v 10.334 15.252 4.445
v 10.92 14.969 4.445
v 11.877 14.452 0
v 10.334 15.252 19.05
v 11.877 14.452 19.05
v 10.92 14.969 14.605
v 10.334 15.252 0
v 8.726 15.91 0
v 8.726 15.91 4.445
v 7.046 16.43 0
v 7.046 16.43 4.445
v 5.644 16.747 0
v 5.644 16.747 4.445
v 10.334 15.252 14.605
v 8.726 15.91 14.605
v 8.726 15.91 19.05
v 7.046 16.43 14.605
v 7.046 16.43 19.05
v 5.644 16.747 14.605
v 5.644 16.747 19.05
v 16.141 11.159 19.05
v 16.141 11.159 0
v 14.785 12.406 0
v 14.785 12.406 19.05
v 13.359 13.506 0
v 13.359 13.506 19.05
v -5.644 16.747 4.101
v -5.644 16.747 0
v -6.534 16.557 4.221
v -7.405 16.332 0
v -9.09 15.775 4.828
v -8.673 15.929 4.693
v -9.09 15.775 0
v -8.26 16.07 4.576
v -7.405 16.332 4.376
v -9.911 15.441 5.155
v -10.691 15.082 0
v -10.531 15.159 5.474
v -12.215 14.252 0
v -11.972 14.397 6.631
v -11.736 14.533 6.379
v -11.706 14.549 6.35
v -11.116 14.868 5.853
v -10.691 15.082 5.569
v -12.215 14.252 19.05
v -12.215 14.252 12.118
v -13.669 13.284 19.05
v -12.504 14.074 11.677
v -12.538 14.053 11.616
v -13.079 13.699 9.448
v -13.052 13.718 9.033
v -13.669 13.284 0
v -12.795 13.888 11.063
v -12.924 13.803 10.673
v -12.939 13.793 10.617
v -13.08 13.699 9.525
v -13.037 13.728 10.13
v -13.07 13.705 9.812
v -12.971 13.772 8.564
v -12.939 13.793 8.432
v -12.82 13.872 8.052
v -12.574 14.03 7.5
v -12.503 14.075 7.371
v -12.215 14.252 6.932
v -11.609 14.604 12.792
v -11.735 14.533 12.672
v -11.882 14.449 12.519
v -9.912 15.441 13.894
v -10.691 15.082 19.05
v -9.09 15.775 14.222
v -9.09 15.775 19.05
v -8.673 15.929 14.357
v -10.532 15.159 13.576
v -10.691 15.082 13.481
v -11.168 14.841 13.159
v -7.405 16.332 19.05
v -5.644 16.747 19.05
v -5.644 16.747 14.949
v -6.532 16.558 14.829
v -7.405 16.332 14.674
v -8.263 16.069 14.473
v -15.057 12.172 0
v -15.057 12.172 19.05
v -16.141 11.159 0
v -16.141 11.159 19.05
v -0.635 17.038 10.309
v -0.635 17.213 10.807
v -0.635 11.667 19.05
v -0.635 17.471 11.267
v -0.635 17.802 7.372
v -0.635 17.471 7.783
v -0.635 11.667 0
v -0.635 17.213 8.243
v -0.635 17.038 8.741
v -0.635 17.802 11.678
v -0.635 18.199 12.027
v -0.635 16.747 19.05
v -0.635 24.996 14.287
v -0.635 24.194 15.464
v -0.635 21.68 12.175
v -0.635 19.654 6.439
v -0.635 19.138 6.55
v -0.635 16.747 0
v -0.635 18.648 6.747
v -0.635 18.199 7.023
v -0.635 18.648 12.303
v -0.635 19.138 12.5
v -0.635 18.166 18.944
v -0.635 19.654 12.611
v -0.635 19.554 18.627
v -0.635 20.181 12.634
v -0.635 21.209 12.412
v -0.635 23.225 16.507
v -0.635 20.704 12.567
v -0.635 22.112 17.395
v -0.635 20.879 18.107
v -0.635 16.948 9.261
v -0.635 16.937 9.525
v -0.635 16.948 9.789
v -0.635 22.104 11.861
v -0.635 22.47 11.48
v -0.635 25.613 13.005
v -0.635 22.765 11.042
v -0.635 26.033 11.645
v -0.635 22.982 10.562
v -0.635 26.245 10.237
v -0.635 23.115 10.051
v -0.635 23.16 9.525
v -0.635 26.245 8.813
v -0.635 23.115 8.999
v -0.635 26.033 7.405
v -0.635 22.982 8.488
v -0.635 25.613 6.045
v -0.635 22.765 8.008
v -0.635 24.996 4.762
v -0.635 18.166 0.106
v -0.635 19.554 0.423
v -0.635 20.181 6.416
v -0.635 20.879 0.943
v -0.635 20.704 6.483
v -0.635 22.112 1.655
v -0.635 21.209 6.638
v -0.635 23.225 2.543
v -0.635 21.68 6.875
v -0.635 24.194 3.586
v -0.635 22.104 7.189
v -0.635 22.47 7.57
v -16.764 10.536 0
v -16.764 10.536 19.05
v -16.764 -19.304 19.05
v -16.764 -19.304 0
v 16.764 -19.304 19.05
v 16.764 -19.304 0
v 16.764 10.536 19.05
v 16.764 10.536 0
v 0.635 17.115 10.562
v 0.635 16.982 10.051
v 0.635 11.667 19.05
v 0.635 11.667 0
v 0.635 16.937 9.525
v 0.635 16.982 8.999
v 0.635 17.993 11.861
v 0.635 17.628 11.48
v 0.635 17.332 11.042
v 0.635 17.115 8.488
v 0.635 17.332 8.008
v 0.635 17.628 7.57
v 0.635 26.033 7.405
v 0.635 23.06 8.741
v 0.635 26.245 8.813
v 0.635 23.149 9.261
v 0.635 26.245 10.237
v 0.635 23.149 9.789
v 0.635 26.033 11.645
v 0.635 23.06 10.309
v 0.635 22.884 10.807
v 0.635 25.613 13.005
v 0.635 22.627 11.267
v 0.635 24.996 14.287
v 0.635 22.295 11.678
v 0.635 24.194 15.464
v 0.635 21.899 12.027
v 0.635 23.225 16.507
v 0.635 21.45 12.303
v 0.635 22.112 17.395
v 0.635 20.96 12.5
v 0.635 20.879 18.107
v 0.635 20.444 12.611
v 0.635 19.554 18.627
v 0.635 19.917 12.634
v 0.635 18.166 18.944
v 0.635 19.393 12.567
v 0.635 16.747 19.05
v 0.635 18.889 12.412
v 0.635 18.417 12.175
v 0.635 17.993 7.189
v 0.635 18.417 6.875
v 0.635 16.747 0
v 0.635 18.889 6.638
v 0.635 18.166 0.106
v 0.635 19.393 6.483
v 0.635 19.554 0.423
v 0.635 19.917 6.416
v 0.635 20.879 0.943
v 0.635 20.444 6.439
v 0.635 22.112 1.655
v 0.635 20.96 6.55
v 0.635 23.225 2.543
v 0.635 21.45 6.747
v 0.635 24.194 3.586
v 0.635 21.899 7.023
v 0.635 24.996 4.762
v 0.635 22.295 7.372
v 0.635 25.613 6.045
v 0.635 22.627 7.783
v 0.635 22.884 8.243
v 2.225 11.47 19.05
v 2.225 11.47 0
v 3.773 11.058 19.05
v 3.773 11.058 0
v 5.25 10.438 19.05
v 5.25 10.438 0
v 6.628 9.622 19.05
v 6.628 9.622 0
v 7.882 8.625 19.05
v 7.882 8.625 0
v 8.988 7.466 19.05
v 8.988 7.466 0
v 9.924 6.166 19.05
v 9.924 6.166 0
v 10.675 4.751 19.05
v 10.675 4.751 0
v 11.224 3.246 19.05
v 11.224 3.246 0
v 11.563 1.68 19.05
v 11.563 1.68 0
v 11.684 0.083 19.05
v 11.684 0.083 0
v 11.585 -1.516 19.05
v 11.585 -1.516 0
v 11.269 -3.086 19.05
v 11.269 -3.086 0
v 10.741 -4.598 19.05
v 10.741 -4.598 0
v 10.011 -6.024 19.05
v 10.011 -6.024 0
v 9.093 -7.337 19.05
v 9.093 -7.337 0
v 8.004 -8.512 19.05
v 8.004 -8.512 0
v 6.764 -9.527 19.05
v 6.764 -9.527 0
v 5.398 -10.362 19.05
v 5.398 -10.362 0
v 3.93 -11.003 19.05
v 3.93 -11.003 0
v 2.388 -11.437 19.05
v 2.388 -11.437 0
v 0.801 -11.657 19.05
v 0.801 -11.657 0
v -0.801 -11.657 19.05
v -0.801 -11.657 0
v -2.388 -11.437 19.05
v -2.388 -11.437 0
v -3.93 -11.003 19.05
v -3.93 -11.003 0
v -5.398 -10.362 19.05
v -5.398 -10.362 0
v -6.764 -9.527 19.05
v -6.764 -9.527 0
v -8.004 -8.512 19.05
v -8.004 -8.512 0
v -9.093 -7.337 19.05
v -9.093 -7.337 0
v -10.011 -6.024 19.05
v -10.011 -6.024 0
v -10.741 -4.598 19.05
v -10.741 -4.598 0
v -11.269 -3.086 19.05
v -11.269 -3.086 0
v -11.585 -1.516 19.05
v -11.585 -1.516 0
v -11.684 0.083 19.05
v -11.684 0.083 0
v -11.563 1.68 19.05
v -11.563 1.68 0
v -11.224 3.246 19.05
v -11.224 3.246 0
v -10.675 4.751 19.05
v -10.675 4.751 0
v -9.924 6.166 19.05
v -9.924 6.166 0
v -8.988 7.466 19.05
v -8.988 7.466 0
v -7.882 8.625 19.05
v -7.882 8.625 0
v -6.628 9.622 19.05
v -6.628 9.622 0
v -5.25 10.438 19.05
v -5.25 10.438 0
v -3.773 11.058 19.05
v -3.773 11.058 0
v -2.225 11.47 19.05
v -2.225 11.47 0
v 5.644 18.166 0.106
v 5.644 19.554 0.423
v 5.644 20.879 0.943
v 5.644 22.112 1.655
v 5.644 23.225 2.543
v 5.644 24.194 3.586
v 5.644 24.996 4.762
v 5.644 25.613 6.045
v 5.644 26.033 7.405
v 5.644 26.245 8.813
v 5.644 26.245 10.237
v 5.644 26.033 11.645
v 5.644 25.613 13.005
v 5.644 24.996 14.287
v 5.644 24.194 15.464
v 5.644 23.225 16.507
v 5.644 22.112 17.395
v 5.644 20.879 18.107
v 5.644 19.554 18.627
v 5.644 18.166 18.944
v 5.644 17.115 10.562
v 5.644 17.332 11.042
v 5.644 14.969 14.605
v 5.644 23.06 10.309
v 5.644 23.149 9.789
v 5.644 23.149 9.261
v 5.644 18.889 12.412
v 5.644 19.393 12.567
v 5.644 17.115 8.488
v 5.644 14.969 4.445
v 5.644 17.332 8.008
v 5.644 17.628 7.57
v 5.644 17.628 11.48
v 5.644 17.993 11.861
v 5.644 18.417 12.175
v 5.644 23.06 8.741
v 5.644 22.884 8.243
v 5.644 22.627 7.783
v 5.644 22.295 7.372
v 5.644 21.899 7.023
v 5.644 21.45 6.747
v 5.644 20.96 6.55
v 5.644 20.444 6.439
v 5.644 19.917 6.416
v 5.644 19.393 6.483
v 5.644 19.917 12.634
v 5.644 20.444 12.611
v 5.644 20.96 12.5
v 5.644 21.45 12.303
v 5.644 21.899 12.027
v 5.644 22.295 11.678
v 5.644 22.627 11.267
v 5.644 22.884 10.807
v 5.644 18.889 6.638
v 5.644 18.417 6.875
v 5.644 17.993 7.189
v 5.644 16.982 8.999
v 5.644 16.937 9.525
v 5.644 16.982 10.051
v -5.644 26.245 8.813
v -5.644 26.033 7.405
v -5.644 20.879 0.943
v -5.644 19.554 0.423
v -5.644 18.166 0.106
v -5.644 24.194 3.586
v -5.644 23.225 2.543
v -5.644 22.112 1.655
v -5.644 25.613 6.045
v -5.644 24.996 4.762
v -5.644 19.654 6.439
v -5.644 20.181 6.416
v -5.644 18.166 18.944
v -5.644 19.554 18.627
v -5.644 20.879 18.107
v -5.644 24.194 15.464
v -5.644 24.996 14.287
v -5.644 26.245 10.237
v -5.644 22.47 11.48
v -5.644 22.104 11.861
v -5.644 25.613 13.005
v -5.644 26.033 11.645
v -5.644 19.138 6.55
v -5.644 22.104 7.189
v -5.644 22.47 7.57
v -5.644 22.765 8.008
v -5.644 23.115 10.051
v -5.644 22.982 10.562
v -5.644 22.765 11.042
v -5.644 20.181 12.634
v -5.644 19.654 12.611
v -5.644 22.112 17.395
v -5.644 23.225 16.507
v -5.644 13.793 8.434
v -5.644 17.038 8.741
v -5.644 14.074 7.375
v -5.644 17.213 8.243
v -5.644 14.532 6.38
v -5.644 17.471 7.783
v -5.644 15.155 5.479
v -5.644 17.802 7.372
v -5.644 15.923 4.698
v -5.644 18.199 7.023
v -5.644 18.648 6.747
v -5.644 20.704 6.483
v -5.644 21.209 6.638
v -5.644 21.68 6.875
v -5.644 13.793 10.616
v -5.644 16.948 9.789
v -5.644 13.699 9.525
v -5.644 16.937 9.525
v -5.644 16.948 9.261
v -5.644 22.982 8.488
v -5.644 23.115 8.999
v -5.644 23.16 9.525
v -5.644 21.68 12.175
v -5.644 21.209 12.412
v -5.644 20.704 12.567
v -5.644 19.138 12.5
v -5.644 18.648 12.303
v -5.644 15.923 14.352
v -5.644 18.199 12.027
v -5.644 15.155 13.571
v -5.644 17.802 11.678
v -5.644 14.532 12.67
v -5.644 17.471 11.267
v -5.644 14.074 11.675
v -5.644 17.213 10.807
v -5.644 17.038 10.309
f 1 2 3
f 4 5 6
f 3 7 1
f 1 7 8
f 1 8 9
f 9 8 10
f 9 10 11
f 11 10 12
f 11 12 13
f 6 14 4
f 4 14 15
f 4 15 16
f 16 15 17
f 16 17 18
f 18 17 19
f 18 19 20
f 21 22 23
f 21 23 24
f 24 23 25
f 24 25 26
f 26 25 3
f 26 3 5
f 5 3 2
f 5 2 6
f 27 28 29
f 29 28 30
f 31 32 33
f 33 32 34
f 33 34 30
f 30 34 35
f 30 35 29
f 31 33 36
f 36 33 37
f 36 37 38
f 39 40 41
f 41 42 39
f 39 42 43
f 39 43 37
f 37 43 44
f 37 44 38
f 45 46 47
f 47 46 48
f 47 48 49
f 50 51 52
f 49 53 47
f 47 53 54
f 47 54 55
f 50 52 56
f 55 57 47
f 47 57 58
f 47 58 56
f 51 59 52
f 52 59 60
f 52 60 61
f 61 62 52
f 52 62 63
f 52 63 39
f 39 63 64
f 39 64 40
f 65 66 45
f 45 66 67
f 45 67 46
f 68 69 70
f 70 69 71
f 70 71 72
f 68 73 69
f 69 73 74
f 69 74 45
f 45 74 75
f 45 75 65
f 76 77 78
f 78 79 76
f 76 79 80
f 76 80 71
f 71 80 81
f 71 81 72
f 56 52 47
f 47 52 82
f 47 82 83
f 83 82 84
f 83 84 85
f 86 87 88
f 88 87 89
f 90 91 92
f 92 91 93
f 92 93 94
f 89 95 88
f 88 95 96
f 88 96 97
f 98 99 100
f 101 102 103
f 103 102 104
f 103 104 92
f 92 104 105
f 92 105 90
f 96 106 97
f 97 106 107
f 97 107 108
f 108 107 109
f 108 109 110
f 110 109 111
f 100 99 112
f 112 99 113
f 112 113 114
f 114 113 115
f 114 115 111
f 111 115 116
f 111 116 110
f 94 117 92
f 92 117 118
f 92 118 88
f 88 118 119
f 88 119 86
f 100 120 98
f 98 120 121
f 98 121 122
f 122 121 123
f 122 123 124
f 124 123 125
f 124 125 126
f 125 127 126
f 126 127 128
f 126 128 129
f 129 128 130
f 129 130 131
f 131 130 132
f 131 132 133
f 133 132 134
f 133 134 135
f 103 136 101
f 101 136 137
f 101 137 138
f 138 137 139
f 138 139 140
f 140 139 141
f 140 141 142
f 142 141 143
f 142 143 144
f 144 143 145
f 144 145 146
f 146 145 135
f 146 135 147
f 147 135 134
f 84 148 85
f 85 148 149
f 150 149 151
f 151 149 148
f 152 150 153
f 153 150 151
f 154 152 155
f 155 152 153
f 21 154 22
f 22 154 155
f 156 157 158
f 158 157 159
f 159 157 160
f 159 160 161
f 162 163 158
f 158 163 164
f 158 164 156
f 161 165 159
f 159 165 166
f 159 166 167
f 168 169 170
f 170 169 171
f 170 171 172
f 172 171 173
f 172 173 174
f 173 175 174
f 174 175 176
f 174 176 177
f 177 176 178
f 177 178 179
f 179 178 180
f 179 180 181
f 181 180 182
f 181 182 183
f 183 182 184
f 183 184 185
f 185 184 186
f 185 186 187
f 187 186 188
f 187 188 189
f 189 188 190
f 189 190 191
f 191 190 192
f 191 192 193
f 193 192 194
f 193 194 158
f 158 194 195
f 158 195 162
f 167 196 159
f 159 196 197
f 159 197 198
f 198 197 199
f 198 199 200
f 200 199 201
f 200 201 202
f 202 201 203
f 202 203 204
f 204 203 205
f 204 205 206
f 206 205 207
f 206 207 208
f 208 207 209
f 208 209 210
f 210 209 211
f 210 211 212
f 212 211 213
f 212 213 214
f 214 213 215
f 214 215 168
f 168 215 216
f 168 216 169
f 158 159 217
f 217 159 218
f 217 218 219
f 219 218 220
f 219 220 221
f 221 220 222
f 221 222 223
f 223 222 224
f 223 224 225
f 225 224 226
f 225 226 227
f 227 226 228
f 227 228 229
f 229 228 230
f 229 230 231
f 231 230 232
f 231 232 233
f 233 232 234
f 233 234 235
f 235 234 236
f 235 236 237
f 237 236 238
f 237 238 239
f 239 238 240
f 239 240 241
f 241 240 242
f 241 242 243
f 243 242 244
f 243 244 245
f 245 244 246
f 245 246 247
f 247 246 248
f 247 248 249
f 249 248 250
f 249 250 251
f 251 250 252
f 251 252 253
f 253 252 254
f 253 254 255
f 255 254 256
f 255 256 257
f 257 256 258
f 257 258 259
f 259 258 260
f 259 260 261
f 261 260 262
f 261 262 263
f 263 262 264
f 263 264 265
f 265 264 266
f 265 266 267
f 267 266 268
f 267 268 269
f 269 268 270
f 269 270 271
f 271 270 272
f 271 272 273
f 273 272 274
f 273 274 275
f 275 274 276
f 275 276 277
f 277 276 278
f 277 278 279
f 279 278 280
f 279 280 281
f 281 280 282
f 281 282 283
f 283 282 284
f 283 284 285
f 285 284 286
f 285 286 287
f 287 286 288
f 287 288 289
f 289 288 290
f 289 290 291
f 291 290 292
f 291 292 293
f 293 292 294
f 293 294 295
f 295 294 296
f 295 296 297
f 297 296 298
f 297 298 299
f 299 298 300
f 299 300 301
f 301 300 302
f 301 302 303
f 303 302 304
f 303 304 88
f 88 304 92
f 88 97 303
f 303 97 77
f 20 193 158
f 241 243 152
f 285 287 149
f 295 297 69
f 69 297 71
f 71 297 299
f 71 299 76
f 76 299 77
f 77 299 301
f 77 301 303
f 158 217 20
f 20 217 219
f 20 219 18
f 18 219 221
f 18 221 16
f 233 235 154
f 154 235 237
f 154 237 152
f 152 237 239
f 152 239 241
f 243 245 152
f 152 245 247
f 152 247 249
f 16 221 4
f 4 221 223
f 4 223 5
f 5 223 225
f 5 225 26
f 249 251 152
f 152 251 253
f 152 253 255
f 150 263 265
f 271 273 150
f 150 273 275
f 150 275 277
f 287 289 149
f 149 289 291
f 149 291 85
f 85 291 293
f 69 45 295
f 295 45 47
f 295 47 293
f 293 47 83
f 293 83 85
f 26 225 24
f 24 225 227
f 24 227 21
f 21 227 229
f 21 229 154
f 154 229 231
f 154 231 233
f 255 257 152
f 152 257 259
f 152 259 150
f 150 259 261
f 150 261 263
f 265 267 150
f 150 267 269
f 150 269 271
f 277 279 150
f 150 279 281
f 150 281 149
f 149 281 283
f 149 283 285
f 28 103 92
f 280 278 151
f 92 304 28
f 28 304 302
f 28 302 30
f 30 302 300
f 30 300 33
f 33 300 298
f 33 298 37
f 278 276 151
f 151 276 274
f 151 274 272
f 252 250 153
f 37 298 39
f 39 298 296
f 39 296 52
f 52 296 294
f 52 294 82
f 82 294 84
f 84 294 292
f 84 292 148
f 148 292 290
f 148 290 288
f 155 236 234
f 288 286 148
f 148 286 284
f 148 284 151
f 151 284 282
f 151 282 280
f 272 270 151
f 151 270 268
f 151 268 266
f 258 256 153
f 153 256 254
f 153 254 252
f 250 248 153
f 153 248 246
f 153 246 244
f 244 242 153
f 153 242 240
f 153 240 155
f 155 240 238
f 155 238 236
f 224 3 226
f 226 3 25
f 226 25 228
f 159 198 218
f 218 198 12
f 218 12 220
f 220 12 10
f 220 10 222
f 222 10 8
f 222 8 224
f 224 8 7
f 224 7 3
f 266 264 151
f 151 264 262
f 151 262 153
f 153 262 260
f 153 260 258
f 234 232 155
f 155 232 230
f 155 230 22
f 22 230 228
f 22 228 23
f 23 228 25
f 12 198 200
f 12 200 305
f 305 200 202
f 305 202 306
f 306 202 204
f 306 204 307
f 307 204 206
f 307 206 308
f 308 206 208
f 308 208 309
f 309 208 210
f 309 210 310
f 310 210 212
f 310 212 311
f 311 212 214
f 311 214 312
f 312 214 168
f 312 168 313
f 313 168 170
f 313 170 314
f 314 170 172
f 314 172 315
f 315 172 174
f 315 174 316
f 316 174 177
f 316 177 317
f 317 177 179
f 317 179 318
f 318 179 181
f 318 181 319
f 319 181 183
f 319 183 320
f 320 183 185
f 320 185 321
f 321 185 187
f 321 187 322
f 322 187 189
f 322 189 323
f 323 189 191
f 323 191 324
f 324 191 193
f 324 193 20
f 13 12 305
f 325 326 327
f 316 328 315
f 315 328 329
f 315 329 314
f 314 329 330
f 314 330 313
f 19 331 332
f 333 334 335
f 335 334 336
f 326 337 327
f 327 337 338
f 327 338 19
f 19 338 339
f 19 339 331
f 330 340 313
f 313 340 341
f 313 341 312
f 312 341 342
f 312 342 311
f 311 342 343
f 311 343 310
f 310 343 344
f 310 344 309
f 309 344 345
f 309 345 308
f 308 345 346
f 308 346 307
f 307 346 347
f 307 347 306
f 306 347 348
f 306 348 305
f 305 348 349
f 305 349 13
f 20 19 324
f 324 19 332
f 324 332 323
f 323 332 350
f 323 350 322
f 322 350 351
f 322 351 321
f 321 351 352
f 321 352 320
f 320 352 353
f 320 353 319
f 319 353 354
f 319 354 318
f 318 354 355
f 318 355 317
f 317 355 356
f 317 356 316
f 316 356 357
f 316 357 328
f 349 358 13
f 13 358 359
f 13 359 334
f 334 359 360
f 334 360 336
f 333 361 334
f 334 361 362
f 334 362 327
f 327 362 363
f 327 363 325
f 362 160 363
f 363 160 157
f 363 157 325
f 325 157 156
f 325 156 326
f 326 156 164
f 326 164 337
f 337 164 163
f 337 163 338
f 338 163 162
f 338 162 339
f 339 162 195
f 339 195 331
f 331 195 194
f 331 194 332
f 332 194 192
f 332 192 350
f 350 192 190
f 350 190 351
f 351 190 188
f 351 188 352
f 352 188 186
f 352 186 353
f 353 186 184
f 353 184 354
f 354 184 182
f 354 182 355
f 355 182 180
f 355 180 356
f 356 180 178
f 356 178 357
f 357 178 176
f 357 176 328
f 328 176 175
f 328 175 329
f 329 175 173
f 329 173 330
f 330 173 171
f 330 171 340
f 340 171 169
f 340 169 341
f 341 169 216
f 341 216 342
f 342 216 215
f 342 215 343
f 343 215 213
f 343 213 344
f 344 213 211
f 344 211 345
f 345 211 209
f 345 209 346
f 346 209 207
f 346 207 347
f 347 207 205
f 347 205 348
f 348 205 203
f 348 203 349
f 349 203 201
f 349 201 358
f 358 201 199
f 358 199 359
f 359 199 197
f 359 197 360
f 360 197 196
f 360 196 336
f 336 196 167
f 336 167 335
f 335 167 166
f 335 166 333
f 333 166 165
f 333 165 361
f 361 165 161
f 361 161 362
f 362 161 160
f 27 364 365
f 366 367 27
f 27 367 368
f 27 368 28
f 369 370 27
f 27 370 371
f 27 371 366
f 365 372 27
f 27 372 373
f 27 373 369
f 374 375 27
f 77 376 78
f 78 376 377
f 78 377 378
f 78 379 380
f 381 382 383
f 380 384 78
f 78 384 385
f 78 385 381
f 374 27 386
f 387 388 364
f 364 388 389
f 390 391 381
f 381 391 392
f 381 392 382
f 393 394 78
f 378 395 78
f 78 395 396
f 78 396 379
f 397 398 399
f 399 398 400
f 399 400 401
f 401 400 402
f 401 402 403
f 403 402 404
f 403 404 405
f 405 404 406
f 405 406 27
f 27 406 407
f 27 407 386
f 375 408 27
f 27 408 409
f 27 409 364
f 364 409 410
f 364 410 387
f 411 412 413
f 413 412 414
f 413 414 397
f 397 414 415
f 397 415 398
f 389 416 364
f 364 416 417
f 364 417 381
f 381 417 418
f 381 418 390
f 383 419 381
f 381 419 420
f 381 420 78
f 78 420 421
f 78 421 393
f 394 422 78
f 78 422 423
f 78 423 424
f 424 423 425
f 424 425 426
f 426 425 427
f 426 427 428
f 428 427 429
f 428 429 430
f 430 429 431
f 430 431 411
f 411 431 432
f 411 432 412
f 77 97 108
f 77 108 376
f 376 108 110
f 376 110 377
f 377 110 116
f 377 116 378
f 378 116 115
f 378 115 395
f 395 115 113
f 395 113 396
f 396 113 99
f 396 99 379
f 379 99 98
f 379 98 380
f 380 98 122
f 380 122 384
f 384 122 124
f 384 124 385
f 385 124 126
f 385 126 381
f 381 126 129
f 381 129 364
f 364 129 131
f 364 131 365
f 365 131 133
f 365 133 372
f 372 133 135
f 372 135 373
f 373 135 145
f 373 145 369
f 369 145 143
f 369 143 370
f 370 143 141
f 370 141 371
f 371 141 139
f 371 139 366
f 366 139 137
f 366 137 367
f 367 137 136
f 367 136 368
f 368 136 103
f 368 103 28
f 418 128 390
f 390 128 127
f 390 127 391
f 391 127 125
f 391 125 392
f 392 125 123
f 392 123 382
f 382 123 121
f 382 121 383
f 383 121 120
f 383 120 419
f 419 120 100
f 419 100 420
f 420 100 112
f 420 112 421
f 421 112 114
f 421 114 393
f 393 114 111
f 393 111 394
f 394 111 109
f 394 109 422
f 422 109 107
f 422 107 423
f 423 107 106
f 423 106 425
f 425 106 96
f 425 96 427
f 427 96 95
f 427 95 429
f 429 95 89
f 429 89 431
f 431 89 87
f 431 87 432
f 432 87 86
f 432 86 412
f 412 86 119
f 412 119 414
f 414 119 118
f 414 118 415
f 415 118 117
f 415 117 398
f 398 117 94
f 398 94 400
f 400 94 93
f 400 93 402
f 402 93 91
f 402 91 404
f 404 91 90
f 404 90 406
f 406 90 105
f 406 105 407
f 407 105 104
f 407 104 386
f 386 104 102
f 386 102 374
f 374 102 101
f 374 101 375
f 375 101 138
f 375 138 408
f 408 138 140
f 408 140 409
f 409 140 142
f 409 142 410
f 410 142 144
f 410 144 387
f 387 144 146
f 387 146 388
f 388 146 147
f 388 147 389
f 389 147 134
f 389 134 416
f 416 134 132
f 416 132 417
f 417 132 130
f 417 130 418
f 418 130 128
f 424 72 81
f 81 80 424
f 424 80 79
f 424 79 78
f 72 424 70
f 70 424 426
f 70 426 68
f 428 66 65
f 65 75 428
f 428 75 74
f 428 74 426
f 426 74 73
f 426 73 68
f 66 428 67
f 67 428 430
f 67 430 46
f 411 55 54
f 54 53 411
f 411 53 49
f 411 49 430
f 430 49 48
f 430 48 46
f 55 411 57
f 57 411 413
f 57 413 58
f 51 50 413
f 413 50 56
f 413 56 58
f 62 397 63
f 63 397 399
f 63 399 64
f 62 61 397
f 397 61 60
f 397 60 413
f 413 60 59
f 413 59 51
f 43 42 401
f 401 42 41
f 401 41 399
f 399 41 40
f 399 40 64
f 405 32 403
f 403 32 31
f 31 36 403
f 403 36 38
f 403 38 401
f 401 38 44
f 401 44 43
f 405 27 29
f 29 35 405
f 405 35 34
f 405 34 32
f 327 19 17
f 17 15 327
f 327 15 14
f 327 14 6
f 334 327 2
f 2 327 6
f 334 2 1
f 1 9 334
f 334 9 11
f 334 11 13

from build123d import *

# Parameters (mm, degrees)
BOSS_EXTRUDE1_DEPTH = 19.05
SKETCH2_R           = 3.1115
BOSS_EXTRUDE3_DEPTH = 5.00888
CUT_EXTRUDE1_DEPTH  = 37.525855062
SKETCH3_R           = 6.35
CUT_EXTRUDE2_DEPTH  = 40.436271203
SKETCH5_W           = 10.16
SKETCH5_H           = 10.16
CUT_EXTRUDE3_DEPTH  = 40.436271203


with BuildPart() as part:
    # Sketch1 → Boss-Extrude1 (new body)
    with BuildSketch(Plane.XY):
        with BuildLine():
            Line((-16.764, 10.535978608), (-13.649989304, 13.649989304))
            ThreePointArc((-13.649989304, 13.649989304), (-11.72846788, 15.33256199), (-9.60163475, 16.746731805))
            Line((-9.60163475, 16.746731805), (-0.635, 16.746731805))
            Line((-0.635, 16.746731805), (-0.635, 11.666731805))
            ThreePointArc((-0.635, 11.666731805), (0, -11.684), (0.635, 11.666731805))
            Line((0.635, 11.666731805), (0.635, 16.746731805))
            Line((0.635, 16.746731805), (9.60163475, 16.746731805))
            ThreePointArc((9.60163475, 16.746731805), (11.72846788, 15.33256199), (13.649989304, 13.649989304))
            Line((13.649989304, 13.649989304), (16.764, 10.535978608))
            Line((16.764, 10.535978608), (16.764, -19.304))
            Line((16.764, -19.304), (-16.764, -19.304))
            Line((-16.764, -19.304), (-16.764, 10.535978608))
        make_face()
    extrude(amount=BOSS_EXTRUDE1_DEPTH)

    # Sketch2 → Boss-Extrude3 (add)
    with BuildSketch(Plane.ZY.offset(-0.635)):
        with BuildLine():
            Line((19.05, 16.746731805), (0, 16.746731805))
            ThreePointArc((0, 16.746731805), (9.525, 26.271731805), (19.05, 16.746731805))
        make_face()
        with Locations(Location((9.525, 20.048731805, 0), (0, 0, 270))):
            Circle(SKETCH2_R, mode=Mode.SUBTRACT)
    boss_extrude3 = extrude(amount=-BOSS_EXTRUDE3_DEPTH)

    # Mirror7: Boss-Extrude3 across plane
    add(boss_extrude3.mirror(Plane(origin=(0, 0, 0), x_dir=(0, 0, 1), z_dir=(1, 0, 0))))

    # Sketch4 → Cut-Extrude1 (cut, through all)
    with BuildSketch(Plane(origin=(0, 0, 0), x_dir=(-1, 0, 0), z_dir=(0, 0, -1))):
        with BuildLine():
            Line((-16.141246803, 11.158731805), (-16.141246803, 17.710333674))
            Line((-16.141246803, 17.710333674), (-5.64388, 16.746731805))
            add(Edge.make_bspline(
                [(-5.64388, 16.746731805), (-11.711664831, 15.588313777), (-16.141246803, 11.158731805)],
                knots=[0, 0, 0, 1, 1, 1], degree=2))
        make_face()
        with BuildLine():
            Line((16.141246803, 17.710333674), (5.64388, 16.746731805))
            add(Edge.make_bspline(
                [(5.64388, 16.746731805), (11.711664831, 15.588313777), (16.141246803, 11.158731805)],
                knots=[0, 0, 0, 1, 1, 1], degree=2))
            Line((16.141246803, 11.158731805), (16.141246803, 17.710333674))
        make_face()
    extrude(amount=-CUT_EXTRUDE1_DEPTH, mode=Mode.SUBTRACT)

    # Sketch3 → Cut-Extrude2 (cut, through all)
    with BuildSketch(Plane.ZY.offset(5.64388)):
        with Locations((9.525, 20.048731805)):
            Circle(SKETCH3_R)
    extrude(amount=CUT_EXTRUDE2_DEPTH, mode=Mode.SUBTRACT)

    # Sketch5 → Cut-Extrude3 (cut, through all)
    with BuildSketch(Plane(origin=(5.64388, 0, 0), x_dir=(0, 0, -1), z_dir=(1, 0, 0))):
        with Locations((-9.525, 20.048731805)):
            Rectangle(SKETCH5_W, SKETCH5_H)
    extrude(amount=CUT_EXTRUDE3_DEPTH, mode=Mode.SUBTRACT)


solid = part.part
